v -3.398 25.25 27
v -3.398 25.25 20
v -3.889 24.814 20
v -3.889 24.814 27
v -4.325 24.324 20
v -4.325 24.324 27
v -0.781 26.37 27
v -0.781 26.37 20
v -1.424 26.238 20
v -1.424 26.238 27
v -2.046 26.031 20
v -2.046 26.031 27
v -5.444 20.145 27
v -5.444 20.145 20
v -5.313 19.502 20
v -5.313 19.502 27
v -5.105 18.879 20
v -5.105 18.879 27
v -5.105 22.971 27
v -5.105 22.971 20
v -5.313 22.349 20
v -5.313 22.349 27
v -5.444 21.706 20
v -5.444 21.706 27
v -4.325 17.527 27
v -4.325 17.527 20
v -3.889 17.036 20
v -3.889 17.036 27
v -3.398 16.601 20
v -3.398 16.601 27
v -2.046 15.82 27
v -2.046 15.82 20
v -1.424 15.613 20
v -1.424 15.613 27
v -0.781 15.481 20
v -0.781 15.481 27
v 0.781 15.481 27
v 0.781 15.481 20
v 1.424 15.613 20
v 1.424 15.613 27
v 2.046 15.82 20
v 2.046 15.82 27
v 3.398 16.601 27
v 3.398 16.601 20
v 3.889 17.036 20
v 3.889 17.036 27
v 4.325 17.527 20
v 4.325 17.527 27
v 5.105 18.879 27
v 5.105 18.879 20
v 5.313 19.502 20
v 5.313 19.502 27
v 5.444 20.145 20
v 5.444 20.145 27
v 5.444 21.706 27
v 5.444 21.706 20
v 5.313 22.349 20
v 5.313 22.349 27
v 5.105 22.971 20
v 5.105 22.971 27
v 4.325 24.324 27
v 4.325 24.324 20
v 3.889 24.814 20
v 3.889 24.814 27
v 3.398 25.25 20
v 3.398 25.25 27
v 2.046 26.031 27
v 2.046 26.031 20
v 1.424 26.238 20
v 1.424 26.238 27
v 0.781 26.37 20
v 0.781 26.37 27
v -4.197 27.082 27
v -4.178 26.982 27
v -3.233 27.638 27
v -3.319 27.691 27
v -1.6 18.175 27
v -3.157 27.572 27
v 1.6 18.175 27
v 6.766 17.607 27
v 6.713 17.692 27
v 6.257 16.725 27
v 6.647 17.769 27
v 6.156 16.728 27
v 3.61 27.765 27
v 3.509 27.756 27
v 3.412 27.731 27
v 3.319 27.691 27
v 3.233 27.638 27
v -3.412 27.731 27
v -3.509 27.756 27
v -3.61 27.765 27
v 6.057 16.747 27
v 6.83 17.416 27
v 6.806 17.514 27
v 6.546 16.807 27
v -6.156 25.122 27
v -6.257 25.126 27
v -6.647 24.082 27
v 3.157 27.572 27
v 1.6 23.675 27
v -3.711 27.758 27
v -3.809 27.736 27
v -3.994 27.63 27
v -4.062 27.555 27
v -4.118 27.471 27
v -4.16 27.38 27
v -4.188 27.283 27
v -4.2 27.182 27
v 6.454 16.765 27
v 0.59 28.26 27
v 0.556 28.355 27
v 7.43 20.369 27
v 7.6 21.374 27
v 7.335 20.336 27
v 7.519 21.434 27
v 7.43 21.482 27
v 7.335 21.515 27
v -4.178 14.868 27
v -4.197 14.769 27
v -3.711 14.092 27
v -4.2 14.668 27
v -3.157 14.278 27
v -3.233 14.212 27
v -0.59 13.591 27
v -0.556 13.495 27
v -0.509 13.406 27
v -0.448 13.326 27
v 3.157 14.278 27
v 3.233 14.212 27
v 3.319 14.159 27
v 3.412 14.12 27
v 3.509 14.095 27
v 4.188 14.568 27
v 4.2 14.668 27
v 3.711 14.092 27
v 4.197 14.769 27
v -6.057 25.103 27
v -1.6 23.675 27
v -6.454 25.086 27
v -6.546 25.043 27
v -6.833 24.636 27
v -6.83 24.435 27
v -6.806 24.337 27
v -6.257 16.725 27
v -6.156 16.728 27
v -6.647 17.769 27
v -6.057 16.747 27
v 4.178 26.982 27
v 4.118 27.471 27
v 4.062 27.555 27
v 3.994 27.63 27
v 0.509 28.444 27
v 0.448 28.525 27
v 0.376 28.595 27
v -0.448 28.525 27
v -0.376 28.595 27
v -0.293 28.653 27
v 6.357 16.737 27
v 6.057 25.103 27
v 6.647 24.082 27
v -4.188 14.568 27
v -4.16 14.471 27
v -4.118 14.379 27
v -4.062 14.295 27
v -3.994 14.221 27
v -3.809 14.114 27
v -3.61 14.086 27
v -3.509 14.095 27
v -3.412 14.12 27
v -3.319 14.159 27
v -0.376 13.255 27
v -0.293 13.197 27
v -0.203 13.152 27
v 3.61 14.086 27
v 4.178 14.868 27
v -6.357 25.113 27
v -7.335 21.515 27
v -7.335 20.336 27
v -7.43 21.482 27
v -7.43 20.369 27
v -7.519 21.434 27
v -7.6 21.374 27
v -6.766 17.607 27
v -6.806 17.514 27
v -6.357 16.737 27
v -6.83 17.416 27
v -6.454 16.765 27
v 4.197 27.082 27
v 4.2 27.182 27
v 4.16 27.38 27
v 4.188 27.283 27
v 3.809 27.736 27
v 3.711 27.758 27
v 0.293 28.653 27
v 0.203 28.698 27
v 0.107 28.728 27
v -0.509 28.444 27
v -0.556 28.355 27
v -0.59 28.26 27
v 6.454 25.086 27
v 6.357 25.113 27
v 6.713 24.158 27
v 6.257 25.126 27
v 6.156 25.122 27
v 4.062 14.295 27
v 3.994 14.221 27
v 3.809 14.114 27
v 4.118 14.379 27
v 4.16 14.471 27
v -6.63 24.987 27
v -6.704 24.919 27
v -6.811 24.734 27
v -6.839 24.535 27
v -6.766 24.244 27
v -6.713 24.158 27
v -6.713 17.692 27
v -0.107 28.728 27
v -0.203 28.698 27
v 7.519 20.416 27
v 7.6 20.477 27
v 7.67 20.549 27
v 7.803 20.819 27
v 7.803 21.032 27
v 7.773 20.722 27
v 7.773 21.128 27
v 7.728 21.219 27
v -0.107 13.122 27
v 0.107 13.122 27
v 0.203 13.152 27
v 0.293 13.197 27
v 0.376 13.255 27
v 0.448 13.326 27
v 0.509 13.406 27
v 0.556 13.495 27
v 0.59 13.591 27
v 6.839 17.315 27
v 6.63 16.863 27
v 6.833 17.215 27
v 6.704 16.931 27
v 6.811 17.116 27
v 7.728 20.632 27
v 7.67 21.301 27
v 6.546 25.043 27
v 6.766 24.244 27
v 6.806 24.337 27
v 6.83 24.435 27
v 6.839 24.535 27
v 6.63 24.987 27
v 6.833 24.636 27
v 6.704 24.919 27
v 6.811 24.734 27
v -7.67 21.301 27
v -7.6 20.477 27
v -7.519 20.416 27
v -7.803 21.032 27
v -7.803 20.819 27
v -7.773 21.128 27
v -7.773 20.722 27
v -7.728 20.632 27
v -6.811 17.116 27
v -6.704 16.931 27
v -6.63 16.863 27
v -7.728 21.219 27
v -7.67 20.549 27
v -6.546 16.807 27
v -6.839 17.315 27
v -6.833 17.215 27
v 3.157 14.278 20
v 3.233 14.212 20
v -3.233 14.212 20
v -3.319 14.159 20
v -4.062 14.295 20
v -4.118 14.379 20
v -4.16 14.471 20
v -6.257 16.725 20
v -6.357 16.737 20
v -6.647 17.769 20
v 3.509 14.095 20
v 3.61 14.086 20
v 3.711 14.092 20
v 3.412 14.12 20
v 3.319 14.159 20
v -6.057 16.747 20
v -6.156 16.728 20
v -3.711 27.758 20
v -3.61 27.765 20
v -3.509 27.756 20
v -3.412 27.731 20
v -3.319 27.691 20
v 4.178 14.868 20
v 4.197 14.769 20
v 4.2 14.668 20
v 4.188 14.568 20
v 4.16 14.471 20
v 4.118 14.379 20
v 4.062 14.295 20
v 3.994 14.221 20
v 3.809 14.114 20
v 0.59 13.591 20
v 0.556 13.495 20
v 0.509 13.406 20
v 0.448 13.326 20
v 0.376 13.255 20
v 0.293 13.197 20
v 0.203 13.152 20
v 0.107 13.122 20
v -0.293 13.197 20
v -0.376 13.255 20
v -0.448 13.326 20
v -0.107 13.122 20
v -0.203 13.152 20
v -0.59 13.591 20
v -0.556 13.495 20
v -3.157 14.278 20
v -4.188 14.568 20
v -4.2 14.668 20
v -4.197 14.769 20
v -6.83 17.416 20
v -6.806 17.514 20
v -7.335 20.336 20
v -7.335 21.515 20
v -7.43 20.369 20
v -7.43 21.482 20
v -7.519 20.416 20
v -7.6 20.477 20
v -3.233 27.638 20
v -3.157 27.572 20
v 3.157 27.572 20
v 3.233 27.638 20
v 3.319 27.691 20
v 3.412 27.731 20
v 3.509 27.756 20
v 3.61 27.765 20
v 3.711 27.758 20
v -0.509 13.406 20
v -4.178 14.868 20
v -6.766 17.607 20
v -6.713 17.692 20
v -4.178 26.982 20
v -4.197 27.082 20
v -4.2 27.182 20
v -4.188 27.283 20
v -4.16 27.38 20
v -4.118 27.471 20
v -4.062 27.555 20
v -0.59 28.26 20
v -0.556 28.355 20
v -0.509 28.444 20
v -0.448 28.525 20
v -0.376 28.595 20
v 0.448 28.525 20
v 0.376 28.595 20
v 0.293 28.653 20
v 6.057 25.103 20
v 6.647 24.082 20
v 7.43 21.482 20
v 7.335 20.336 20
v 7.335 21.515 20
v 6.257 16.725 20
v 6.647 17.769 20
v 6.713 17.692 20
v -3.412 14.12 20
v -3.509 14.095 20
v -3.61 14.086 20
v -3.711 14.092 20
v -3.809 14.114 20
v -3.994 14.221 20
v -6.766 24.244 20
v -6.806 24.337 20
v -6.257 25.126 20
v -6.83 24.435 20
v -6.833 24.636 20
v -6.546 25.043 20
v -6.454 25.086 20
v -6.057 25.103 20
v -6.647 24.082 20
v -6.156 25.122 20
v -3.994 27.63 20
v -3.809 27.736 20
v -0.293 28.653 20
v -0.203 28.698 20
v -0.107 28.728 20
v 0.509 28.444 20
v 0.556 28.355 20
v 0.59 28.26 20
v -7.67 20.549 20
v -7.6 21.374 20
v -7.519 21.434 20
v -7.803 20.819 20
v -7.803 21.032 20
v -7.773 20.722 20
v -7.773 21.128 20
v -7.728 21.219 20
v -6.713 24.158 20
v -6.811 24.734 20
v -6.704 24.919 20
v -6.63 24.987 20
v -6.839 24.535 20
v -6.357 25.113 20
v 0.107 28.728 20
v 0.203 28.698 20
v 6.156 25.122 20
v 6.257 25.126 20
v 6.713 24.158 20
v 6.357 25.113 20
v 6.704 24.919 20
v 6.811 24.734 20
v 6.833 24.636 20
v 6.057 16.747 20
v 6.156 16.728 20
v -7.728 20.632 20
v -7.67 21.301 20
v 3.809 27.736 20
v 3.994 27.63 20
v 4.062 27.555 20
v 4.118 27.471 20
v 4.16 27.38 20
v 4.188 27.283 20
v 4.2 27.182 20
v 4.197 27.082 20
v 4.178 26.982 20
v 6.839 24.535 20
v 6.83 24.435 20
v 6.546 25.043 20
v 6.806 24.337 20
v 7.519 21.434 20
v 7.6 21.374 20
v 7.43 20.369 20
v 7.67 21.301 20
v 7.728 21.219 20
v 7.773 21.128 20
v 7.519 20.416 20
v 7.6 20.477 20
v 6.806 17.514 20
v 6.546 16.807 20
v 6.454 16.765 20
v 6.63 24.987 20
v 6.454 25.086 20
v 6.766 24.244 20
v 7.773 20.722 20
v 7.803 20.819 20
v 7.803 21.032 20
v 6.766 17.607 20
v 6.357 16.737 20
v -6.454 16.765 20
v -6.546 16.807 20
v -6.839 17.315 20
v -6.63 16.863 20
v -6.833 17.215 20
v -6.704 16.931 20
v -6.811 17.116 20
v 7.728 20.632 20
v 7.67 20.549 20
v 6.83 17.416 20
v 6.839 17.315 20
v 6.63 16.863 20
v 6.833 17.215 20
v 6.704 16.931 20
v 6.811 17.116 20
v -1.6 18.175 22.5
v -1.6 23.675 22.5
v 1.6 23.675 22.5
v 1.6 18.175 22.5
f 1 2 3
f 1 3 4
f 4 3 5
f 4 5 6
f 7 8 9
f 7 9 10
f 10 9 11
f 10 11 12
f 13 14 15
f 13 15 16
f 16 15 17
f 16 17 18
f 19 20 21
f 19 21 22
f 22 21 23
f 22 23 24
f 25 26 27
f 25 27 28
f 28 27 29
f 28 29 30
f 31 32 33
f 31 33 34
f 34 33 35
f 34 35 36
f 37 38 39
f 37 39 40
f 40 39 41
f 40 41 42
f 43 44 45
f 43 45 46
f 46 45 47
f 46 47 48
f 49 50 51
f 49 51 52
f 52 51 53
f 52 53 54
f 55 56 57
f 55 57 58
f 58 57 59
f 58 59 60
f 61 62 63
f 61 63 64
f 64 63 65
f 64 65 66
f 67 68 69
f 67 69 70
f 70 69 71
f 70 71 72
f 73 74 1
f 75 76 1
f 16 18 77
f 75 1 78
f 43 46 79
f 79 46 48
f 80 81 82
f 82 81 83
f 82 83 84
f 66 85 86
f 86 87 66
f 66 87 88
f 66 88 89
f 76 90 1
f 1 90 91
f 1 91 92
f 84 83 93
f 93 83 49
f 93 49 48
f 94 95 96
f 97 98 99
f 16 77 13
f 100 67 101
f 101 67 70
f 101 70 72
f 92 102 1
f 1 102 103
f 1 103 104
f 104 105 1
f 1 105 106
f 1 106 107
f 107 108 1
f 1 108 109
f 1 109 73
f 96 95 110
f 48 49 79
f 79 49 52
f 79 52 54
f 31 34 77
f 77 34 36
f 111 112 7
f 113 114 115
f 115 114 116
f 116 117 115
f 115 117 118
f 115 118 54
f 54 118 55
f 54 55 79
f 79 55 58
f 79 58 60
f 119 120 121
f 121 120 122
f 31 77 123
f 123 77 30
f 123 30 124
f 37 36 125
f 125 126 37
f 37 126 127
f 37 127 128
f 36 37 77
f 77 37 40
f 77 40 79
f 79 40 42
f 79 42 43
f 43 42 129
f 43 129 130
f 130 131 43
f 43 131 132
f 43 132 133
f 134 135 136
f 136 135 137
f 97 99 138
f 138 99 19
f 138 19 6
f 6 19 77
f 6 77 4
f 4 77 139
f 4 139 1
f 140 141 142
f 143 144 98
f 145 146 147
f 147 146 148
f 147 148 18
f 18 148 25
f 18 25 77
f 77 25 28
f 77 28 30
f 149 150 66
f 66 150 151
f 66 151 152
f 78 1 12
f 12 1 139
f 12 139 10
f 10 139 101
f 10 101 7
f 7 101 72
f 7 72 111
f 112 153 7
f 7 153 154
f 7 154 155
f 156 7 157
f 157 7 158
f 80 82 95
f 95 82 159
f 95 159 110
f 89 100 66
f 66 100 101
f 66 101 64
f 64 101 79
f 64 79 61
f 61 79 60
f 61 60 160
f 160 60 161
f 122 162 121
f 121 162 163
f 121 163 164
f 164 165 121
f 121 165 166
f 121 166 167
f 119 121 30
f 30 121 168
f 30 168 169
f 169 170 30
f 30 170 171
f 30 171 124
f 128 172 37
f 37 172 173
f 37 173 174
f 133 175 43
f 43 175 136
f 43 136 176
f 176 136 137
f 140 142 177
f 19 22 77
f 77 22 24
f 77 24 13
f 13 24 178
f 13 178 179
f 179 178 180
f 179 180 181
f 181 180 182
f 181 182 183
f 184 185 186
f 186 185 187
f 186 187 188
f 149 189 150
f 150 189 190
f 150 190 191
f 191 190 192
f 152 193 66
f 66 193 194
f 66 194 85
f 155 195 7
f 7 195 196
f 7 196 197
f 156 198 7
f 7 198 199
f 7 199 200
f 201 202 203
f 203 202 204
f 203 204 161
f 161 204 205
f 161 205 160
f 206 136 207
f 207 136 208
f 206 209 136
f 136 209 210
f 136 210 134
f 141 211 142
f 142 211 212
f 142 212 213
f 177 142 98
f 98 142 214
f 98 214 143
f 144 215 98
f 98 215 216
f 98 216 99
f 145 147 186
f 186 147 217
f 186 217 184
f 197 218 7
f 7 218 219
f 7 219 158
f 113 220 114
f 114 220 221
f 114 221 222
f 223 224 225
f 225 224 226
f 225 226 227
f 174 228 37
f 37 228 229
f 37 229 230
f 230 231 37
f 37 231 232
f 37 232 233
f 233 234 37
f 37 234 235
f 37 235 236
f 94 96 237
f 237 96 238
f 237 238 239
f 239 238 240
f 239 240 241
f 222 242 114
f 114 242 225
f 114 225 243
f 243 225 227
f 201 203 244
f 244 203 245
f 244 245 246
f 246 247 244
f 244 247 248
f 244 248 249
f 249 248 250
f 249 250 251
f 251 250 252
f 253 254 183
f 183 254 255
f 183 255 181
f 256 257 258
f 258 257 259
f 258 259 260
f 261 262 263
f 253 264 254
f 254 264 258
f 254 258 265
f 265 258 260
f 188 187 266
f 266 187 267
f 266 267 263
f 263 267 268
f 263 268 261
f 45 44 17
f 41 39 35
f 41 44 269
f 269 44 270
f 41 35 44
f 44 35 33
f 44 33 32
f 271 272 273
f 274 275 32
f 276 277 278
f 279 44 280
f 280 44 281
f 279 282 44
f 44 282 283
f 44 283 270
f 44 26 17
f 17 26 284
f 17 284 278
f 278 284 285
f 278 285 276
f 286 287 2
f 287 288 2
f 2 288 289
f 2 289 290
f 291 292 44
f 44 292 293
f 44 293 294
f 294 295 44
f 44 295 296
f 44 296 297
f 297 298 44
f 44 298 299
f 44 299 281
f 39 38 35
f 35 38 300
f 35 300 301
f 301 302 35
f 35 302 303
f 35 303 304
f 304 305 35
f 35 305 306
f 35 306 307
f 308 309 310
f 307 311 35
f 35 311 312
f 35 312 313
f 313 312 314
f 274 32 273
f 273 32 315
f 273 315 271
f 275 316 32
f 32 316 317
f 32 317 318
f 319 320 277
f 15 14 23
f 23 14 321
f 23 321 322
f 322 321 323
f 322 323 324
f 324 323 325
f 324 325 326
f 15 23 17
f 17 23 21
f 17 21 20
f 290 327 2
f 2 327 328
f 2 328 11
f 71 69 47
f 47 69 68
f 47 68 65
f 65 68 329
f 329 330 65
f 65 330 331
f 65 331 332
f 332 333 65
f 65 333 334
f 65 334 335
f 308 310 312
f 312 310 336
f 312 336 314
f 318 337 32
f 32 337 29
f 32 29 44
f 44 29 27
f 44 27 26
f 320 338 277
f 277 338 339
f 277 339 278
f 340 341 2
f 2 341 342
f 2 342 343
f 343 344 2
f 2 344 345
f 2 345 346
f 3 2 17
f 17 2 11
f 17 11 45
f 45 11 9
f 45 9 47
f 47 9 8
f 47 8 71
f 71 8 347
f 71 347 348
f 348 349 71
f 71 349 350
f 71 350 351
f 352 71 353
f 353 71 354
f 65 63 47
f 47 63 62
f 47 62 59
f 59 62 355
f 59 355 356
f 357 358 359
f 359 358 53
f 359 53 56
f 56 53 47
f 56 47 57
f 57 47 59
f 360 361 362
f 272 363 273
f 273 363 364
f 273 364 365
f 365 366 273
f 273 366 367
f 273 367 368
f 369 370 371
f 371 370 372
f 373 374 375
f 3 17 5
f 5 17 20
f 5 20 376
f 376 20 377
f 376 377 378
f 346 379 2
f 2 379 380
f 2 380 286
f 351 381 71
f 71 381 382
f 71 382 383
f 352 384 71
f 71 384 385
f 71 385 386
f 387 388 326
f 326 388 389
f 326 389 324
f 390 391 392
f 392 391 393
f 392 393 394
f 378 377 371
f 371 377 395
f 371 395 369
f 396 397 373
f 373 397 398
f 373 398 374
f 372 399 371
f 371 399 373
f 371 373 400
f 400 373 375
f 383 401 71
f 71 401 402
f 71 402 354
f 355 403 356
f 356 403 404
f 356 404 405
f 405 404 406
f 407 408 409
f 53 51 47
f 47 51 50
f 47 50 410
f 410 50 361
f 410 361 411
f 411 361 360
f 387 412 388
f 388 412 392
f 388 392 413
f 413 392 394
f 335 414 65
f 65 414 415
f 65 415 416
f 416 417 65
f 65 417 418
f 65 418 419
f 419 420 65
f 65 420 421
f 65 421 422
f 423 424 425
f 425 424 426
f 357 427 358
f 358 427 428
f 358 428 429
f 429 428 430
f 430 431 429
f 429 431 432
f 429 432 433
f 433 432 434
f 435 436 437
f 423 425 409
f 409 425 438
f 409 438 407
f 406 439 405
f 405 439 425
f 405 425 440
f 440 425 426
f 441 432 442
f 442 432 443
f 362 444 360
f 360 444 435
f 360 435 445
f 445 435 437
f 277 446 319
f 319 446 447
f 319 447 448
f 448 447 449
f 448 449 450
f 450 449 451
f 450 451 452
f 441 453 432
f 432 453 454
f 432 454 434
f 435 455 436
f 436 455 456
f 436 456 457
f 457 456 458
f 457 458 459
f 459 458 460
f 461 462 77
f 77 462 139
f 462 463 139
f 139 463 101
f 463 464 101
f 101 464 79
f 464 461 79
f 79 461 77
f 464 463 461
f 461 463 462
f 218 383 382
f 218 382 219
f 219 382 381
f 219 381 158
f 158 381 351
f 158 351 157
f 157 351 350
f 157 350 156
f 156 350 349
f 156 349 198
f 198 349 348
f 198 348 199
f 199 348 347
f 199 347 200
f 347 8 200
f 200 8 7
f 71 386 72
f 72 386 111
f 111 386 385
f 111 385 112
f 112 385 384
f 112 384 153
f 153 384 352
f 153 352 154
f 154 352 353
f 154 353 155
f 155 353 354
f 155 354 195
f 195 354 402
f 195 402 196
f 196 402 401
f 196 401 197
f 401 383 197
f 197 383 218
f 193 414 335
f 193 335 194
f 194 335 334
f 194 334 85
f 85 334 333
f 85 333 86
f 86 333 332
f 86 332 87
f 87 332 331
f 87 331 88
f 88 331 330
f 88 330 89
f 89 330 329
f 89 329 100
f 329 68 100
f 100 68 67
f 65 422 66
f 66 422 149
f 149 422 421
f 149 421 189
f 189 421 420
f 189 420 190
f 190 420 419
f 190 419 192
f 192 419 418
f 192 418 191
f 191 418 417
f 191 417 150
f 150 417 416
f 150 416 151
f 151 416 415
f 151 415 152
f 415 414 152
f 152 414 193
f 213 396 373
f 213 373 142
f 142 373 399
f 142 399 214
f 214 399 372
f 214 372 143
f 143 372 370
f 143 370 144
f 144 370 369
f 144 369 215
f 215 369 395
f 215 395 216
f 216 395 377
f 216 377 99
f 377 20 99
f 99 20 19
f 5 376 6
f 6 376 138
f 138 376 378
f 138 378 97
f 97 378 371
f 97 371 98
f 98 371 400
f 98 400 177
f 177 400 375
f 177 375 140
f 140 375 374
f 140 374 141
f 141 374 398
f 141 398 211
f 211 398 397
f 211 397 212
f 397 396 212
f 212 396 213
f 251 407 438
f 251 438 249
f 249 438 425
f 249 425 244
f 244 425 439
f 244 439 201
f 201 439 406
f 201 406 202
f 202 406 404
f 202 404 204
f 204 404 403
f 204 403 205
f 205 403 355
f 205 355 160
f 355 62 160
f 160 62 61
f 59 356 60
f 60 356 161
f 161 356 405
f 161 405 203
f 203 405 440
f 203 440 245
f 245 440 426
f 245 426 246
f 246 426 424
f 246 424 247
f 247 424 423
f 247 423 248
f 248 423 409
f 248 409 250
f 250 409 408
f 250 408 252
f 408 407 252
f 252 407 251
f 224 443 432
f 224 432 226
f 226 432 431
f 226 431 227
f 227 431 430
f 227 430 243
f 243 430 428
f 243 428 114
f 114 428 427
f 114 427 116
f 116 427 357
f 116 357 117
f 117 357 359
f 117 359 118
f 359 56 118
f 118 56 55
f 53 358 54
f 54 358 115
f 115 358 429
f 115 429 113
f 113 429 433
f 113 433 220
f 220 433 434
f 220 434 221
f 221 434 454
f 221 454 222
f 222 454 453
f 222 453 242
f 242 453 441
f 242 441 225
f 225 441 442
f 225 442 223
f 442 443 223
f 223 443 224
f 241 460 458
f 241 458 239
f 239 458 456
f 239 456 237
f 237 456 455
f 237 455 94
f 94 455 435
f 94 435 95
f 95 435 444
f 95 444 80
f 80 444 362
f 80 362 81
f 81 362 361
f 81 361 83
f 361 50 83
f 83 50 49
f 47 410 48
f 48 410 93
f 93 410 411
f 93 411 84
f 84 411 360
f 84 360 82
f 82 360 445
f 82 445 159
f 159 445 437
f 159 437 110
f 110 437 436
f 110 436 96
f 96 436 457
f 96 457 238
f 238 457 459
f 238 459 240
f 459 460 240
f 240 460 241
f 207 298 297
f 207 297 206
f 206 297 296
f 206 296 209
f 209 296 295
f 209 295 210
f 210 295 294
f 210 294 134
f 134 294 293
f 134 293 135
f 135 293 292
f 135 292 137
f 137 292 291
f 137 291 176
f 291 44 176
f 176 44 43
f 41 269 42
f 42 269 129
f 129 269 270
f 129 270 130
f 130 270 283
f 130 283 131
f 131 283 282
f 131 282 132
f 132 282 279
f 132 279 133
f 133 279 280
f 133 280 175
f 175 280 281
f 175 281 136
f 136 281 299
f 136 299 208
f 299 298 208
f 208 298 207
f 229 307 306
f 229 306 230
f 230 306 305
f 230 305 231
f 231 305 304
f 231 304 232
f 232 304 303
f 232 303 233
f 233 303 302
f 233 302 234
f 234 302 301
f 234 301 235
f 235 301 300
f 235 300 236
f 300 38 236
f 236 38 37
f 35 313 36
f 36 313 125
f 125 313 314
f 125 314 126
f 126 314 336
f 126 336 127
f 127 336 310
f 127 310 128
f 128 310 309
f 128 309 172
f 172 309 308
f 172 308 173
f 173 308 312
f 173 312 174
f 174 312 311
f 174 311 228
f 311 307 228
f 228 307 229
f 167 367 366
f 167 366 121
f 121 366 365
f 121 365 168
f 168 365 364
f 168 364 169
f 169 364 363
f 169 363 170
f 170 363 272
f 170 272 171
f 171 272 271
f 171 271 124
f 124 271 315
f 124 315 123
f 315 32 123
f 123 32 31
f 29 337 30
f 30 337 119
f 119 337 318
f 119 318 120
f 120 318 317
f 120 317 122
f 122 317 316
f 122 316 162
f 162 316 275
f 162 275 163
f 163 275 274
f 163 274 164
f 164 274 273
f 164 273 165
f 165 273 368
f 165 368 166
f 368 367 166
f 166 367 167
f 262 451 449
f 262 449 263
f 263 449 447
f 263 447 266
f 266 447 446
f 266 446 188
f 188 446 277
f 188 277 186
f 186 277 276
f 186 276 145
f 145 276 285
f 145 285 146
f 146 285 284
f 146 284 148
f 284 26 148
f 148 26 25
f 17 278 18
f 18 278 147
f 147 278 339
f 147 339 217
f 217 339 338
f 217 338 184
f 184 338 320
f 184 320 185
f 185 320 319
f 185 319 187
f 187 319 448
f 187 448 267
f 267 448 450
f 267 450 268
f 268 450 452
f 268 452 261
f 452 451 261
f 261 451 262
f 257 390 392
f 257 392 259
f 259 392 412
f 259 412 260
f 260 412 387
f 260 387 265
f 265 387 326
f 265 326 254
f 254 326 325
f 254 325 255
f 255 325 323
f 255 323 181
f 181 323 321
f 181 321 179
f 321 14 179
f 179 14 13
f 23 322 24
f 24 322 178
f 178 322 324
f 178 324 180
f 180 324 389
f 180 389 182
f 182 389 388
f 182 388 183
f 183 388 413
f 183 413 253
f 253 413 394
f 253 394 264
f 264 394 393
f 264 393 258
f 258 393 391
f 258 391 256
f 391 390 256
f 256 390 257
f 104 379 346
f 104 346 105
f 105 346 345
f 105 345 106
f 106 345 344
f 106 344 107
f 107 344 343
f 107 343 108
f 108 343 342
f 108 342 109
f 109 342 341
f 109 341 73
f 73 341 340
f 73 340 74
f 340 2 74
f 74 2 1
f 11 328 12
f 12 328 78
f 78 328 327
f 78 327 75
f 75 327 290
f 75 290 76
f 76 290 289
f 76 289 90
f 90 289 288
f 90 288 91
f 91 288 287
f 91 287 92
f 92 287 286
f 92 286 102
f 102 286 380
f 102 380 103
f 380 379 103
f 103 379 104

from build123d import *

# Parameters (mm, degrees)
SKETCH1_R           = 5.5
BOSS_EXTRUDE2_DEPTH = 7
SKETCH3_W           = 3.2
SKETCH3_H           = 5.5
CUT_EXTRUDE1_DEPTH  = 6
BOSS_EXTRUDE3_DEPTH = 7


with BuildPart() as part:
    # Sketch1 → Boss-Extrude2 (new body)
    with BuildSketch(Plane.XY.offset(20)):
        with Locations((0, 20.92523633)):
            Circle(SKETCH1_R)
    extrude(amount=BOSS_EXTRUDE2_DEPTH)

    # Sketch3 → Cut-Extrude1 (cut)
    with BuildSketch(Plane.XY.offset(28.5)):
        with Locations((0, 20.92523633)):
            Rectangle(SKETCH3_W, SKETCH3_H)
    extrude(amount=-CUT_EXTRUDE1_DEPTH, mode=Mode.SUBTRACT)

    # Sketch4 → Boss-Extrude3 (add)
    with BuildSketch(Plane.XY.offset(20)):
        with BuildLine():
            Line((-0.589624168, 28.259910336), (-0.780713641, 26.369544019))
            ThreePointArc((-0.780713641, 26.369544019), (0, 26.42523633), (0.780713641, 26.369544019))
            Line((0.780713641, 26.369544019), (0.589624168, 28.259910336))
            ThreePointArc((0.589624168, 28.259910336), (0.413456372, 28.561426906), (0.106677857, 28.728262986))
            ThreePointArc((0.106677857, 28.728262986), (0, 28.731092023), (-0.106677857, 28.728262986))
            ThreePointArc((-0.106677857, 28.728262986), (-0.413456372, 28.561426906), (-0.589624168, 28.259910336))
        make_face()
        with BuildLine():
            Line((4.177966512, 26.982438264), (3.39827169, 25.249788274))
            ThreePointArc((3.39827169, 25.249788274), (2.75, 25.688376051), (2.046035999, 26.030501915))
            Line((2.046035999, 26.030501915), (3.156707495, 27.572062432))
            ThreePointArc((3.156707495, 27.572062432), (3.460031567, 27.745099543), (3.809127593, 27.736194569))
            ThreePointArc((3.809127593, 27.736194569), (3.902927847, 27.685305659), (3.993899063, 27.629516712))
            ThreePointArc((3.993899063, 27.629516712), (4.176159009, 27.331643171), (4.177966512, 26.982438264))
        make_face()
        with BuildLine():
            Line((6.646826102, 24.081943825), (5.105265585, 22.971272329))
            ThreePointArc((5.105265585, 22.971272329), (4.763139721, 23.67523633), (4.324551944, 24.32350802))
            Line((4.324551944, 24.32350802), (6.057201934, 25.103202842))
            ThreePointArc((6.057201934, 25.103202842), (6.406406841, 25.101395339), (6.704280382, 24.919135393))
            ThreePointArc((6.704280382, 24.919135393), (6.760069329, 24.828164177), (6.810958239, 24.734363924))
            ThreePointArc((6.810958239, 24.734363924), (6.819863213, 24.385267897), (6.646826102, 24.081943825))
        make_face()
        with BuildLine():
            Line((7.334674006, 20.335612162), (5.444307689, 20.14452269))
            ThreePointArc((5.444307689, 20.14452269), (5.5, 20.92523633), (5.444307689, 21.705949971))
            Line((5.444307689, 21.705949971), (7.334674006, 21.514860499))
            ThreePointArc((7.334674006, 21.514860499), (7.636190576, 21.338692702), (7.803026656, 21.031914187))
            ThreePointArc((7.803026656, 21.031914187), (7.805855693, 20.92523633), (7.803026656, 20.818558473))
            ThreePointArc((7.803026656, 20.818558473), (7.636190576, 20.511779958), (7.334674006, 20.335612162))
        make_face()
        with BuildLine():
            Line((6.057201934, 16.747269818), (4.324551944, 17.52696464))
            ThreePointArc((4.324551944, 17.52696464), (4.763139721, 18.17523633), (5.105265585, 18.879200331))
            Line((5.105265585, 18.879200331), (6.646826102, 17.768528836))
            ThreePointArc((6.646826102, 17.768528836), (6.819863213, 17.465204763), (6.810958239, 17.116108737))
            ThreePointArc((6.810958239, 17.116108737), (6.760069329, 17.022308483), (6.704280382, 16.931337267))
            ThreePointArc((6.704280382, 16.931337267), (6.406406841, 16.749077321), (6.057201934, 16.747269818))
        make_face()
        with BuildLine():
            Line((3.156707495, 14.278410228), (2.046035999, 15.819970745))
            ThreePointArc((2.046035999, 15.819970745), (2.75, 16.162096609), (3.39827169, 16.600684386))
            Line((3.39827169, 16.600684386), (4.177966512, 14.868034396))
            ThreePointArc((4.177966512, 14.868034396), (4.176159009, 14.518829489), (3.993899063, 14.220955948))
            ThreePointArc((3.993899063, 14.220955948), (3.902927847, 14.165167001), (3.809127593, 14.114278091))
            ThreePointArc((3.809127593, 14.114278091), (3.460031567, 14.105373117), (3.156707495, 14.278410228))
        make_face()
        with BuildLine():
            Line((-0.589624168, 13.590562324), (-0.780713641, 15.480928641))
            ThreePointArc((-0.780713641, 15.480928641), (0, 15.42523633), (0.780713641, 15.480928641))
            Line((0.780713641, 15.480928641), (0.589624168, 13.590562324))
            ThreePointArc((0.589624168, 13.590562324), (0.413456372, 13.289045754), (0.106677857, 13.122209674))
            ThreePointArc((0.106677857, 13.122209674), (0, 13.119380637), (-0.106677857, 13.122209674))
            ThreePointArc((-0.106677857, 13.122209674), (-0.413456372, 13.289045754), (-0.589624168, 13.590562324))
        make_face()
        with BuildLine():
            Line((-4.177966512, 14.868034396), (-3.39827169, 16.600684386))
            ThreePointArc((-3.39827169, 16.600684386), (-2.75, 16.162096609), (-2.046035999, 15.819970745))
            Line((-2.046035999, 15.819970745), (-3.156707495, 14.278410228))
            ThreePointArc((-3.156707495, 14.278410228), (-3.460031567, 14.105373117), (-3.809127593, 14.114278091))
            ThreePointArc((-3.809127593, 14.114278091), (-3.902927847, 14.165167001), (-3.993899063, 14.220955948))
            ThreePointArc((-3.993899063, 14.220955948), (-4.176159009, 14.518829489), (-4.177966512, 14.868034396))
        make_face()
        with BuildLine():
            Line((-6.646826102, 17.768528836), (-5.105265585, 18.879200331))
            ThreePointArc((-5.105265585, 18.879200331), (-4.763139721, 18.17523633), (-4.324551944, 17.52696464))
            Line((-4.324551944, 17.52696464), (-6.057201934, 16.747269818))
            ThreePointArc((-6.057201934, 16.747269818), (-6.406406841, 16.749077321), (-6.704280382, 16.931337267))
            ThreePointArc((-6.704280382, 16.931337267), (-6.760069329, 17.022308483), (-6.810958239, 17.116108737))
            ThreePointArc((-6.810958239, 17.116108737), (-6.819863213, 17.465204763), (-6.646826102, 17.768528836))
        make_face()
        with BuildLine():
            Line((-7.334674006, 21.514860499), (-5.444307689, 21.705949971))
            ThreePointArc((-5.444307689, 21.705949971), (-5.5, 20.92523633), (-5.444307689, 20.14452269))
            Line((-5.444307689, 20.14452269), (-7.334674006, 20.335612162))
            ThreePointArc((-7.334674006, 20.335612162), (-7.636190576, 20.511779958), (-7.803026656, 20.818558473))
            ThreePointArc((-7.803026656, 20.818558473), (-7.805855693, 20.92523633), (-7.803026656, 21.031914187))
            ThreePointArc((-7.803026656, 21.031914187), (-7.636190576, 21.338692702), (-7.334674006, 21.514860499))
        make_face()
        with BuildLine():
            Line((-6.057201934, 25.103202842), (-4.324551944, 24.32350802))
            ThreePointArc((-4.324551944, 24.32350802), (-4.763139721, 23.67523633), (-5.105265585, 22.971272329))
            Line((-5.105265585, 22.971272329), (-6.646826102, 24.081943825))
            ThreePointArc((-6.646826102, 24.081943825), (-6.819863213, 24.385267897), (-6.810958239, 24.734363924))
            ThreePointArc((-6.810958239, 24.734363924), (-6.760069329, 24.828164177), (-6.704280382, 24.919135393))
            ThreePointArc((-6.704280382, 24.919135393), (-6.406406841, 25.101395339), (-6.057201934, 25.103202842))
        make_face()
        with BuildLine():
            Line((-3.156707495, 27.572062432), (-2.046035999, 26.030501915))
            ThreePointArc((-2.046035999, 26.030501915), (-2.75, 25.688376051), (-3.39827169, 25.249788274))
            Line((-3.39827169, 25.249788274), (-4.177966512, 26.982438264))
            ThreePointArc((-4.177966512, 26.982438264), (-4.176159009, 27.331643171), (-3.993899063, 27.629516712))
            ThreePointArc((-3.993899063, 27.629516712), (-3.902927847, 27.685305659), (-3.809127593, 27.736194569))
            ThreePointArc((-3.809127593, 27.736194569), (-3.460031567, 27.745099543), (-3.156707495, 27.572062432))
        make_face()
    extrude(amount=BOSS_EXTRUDE3_DEPTH)


solid = part.part
